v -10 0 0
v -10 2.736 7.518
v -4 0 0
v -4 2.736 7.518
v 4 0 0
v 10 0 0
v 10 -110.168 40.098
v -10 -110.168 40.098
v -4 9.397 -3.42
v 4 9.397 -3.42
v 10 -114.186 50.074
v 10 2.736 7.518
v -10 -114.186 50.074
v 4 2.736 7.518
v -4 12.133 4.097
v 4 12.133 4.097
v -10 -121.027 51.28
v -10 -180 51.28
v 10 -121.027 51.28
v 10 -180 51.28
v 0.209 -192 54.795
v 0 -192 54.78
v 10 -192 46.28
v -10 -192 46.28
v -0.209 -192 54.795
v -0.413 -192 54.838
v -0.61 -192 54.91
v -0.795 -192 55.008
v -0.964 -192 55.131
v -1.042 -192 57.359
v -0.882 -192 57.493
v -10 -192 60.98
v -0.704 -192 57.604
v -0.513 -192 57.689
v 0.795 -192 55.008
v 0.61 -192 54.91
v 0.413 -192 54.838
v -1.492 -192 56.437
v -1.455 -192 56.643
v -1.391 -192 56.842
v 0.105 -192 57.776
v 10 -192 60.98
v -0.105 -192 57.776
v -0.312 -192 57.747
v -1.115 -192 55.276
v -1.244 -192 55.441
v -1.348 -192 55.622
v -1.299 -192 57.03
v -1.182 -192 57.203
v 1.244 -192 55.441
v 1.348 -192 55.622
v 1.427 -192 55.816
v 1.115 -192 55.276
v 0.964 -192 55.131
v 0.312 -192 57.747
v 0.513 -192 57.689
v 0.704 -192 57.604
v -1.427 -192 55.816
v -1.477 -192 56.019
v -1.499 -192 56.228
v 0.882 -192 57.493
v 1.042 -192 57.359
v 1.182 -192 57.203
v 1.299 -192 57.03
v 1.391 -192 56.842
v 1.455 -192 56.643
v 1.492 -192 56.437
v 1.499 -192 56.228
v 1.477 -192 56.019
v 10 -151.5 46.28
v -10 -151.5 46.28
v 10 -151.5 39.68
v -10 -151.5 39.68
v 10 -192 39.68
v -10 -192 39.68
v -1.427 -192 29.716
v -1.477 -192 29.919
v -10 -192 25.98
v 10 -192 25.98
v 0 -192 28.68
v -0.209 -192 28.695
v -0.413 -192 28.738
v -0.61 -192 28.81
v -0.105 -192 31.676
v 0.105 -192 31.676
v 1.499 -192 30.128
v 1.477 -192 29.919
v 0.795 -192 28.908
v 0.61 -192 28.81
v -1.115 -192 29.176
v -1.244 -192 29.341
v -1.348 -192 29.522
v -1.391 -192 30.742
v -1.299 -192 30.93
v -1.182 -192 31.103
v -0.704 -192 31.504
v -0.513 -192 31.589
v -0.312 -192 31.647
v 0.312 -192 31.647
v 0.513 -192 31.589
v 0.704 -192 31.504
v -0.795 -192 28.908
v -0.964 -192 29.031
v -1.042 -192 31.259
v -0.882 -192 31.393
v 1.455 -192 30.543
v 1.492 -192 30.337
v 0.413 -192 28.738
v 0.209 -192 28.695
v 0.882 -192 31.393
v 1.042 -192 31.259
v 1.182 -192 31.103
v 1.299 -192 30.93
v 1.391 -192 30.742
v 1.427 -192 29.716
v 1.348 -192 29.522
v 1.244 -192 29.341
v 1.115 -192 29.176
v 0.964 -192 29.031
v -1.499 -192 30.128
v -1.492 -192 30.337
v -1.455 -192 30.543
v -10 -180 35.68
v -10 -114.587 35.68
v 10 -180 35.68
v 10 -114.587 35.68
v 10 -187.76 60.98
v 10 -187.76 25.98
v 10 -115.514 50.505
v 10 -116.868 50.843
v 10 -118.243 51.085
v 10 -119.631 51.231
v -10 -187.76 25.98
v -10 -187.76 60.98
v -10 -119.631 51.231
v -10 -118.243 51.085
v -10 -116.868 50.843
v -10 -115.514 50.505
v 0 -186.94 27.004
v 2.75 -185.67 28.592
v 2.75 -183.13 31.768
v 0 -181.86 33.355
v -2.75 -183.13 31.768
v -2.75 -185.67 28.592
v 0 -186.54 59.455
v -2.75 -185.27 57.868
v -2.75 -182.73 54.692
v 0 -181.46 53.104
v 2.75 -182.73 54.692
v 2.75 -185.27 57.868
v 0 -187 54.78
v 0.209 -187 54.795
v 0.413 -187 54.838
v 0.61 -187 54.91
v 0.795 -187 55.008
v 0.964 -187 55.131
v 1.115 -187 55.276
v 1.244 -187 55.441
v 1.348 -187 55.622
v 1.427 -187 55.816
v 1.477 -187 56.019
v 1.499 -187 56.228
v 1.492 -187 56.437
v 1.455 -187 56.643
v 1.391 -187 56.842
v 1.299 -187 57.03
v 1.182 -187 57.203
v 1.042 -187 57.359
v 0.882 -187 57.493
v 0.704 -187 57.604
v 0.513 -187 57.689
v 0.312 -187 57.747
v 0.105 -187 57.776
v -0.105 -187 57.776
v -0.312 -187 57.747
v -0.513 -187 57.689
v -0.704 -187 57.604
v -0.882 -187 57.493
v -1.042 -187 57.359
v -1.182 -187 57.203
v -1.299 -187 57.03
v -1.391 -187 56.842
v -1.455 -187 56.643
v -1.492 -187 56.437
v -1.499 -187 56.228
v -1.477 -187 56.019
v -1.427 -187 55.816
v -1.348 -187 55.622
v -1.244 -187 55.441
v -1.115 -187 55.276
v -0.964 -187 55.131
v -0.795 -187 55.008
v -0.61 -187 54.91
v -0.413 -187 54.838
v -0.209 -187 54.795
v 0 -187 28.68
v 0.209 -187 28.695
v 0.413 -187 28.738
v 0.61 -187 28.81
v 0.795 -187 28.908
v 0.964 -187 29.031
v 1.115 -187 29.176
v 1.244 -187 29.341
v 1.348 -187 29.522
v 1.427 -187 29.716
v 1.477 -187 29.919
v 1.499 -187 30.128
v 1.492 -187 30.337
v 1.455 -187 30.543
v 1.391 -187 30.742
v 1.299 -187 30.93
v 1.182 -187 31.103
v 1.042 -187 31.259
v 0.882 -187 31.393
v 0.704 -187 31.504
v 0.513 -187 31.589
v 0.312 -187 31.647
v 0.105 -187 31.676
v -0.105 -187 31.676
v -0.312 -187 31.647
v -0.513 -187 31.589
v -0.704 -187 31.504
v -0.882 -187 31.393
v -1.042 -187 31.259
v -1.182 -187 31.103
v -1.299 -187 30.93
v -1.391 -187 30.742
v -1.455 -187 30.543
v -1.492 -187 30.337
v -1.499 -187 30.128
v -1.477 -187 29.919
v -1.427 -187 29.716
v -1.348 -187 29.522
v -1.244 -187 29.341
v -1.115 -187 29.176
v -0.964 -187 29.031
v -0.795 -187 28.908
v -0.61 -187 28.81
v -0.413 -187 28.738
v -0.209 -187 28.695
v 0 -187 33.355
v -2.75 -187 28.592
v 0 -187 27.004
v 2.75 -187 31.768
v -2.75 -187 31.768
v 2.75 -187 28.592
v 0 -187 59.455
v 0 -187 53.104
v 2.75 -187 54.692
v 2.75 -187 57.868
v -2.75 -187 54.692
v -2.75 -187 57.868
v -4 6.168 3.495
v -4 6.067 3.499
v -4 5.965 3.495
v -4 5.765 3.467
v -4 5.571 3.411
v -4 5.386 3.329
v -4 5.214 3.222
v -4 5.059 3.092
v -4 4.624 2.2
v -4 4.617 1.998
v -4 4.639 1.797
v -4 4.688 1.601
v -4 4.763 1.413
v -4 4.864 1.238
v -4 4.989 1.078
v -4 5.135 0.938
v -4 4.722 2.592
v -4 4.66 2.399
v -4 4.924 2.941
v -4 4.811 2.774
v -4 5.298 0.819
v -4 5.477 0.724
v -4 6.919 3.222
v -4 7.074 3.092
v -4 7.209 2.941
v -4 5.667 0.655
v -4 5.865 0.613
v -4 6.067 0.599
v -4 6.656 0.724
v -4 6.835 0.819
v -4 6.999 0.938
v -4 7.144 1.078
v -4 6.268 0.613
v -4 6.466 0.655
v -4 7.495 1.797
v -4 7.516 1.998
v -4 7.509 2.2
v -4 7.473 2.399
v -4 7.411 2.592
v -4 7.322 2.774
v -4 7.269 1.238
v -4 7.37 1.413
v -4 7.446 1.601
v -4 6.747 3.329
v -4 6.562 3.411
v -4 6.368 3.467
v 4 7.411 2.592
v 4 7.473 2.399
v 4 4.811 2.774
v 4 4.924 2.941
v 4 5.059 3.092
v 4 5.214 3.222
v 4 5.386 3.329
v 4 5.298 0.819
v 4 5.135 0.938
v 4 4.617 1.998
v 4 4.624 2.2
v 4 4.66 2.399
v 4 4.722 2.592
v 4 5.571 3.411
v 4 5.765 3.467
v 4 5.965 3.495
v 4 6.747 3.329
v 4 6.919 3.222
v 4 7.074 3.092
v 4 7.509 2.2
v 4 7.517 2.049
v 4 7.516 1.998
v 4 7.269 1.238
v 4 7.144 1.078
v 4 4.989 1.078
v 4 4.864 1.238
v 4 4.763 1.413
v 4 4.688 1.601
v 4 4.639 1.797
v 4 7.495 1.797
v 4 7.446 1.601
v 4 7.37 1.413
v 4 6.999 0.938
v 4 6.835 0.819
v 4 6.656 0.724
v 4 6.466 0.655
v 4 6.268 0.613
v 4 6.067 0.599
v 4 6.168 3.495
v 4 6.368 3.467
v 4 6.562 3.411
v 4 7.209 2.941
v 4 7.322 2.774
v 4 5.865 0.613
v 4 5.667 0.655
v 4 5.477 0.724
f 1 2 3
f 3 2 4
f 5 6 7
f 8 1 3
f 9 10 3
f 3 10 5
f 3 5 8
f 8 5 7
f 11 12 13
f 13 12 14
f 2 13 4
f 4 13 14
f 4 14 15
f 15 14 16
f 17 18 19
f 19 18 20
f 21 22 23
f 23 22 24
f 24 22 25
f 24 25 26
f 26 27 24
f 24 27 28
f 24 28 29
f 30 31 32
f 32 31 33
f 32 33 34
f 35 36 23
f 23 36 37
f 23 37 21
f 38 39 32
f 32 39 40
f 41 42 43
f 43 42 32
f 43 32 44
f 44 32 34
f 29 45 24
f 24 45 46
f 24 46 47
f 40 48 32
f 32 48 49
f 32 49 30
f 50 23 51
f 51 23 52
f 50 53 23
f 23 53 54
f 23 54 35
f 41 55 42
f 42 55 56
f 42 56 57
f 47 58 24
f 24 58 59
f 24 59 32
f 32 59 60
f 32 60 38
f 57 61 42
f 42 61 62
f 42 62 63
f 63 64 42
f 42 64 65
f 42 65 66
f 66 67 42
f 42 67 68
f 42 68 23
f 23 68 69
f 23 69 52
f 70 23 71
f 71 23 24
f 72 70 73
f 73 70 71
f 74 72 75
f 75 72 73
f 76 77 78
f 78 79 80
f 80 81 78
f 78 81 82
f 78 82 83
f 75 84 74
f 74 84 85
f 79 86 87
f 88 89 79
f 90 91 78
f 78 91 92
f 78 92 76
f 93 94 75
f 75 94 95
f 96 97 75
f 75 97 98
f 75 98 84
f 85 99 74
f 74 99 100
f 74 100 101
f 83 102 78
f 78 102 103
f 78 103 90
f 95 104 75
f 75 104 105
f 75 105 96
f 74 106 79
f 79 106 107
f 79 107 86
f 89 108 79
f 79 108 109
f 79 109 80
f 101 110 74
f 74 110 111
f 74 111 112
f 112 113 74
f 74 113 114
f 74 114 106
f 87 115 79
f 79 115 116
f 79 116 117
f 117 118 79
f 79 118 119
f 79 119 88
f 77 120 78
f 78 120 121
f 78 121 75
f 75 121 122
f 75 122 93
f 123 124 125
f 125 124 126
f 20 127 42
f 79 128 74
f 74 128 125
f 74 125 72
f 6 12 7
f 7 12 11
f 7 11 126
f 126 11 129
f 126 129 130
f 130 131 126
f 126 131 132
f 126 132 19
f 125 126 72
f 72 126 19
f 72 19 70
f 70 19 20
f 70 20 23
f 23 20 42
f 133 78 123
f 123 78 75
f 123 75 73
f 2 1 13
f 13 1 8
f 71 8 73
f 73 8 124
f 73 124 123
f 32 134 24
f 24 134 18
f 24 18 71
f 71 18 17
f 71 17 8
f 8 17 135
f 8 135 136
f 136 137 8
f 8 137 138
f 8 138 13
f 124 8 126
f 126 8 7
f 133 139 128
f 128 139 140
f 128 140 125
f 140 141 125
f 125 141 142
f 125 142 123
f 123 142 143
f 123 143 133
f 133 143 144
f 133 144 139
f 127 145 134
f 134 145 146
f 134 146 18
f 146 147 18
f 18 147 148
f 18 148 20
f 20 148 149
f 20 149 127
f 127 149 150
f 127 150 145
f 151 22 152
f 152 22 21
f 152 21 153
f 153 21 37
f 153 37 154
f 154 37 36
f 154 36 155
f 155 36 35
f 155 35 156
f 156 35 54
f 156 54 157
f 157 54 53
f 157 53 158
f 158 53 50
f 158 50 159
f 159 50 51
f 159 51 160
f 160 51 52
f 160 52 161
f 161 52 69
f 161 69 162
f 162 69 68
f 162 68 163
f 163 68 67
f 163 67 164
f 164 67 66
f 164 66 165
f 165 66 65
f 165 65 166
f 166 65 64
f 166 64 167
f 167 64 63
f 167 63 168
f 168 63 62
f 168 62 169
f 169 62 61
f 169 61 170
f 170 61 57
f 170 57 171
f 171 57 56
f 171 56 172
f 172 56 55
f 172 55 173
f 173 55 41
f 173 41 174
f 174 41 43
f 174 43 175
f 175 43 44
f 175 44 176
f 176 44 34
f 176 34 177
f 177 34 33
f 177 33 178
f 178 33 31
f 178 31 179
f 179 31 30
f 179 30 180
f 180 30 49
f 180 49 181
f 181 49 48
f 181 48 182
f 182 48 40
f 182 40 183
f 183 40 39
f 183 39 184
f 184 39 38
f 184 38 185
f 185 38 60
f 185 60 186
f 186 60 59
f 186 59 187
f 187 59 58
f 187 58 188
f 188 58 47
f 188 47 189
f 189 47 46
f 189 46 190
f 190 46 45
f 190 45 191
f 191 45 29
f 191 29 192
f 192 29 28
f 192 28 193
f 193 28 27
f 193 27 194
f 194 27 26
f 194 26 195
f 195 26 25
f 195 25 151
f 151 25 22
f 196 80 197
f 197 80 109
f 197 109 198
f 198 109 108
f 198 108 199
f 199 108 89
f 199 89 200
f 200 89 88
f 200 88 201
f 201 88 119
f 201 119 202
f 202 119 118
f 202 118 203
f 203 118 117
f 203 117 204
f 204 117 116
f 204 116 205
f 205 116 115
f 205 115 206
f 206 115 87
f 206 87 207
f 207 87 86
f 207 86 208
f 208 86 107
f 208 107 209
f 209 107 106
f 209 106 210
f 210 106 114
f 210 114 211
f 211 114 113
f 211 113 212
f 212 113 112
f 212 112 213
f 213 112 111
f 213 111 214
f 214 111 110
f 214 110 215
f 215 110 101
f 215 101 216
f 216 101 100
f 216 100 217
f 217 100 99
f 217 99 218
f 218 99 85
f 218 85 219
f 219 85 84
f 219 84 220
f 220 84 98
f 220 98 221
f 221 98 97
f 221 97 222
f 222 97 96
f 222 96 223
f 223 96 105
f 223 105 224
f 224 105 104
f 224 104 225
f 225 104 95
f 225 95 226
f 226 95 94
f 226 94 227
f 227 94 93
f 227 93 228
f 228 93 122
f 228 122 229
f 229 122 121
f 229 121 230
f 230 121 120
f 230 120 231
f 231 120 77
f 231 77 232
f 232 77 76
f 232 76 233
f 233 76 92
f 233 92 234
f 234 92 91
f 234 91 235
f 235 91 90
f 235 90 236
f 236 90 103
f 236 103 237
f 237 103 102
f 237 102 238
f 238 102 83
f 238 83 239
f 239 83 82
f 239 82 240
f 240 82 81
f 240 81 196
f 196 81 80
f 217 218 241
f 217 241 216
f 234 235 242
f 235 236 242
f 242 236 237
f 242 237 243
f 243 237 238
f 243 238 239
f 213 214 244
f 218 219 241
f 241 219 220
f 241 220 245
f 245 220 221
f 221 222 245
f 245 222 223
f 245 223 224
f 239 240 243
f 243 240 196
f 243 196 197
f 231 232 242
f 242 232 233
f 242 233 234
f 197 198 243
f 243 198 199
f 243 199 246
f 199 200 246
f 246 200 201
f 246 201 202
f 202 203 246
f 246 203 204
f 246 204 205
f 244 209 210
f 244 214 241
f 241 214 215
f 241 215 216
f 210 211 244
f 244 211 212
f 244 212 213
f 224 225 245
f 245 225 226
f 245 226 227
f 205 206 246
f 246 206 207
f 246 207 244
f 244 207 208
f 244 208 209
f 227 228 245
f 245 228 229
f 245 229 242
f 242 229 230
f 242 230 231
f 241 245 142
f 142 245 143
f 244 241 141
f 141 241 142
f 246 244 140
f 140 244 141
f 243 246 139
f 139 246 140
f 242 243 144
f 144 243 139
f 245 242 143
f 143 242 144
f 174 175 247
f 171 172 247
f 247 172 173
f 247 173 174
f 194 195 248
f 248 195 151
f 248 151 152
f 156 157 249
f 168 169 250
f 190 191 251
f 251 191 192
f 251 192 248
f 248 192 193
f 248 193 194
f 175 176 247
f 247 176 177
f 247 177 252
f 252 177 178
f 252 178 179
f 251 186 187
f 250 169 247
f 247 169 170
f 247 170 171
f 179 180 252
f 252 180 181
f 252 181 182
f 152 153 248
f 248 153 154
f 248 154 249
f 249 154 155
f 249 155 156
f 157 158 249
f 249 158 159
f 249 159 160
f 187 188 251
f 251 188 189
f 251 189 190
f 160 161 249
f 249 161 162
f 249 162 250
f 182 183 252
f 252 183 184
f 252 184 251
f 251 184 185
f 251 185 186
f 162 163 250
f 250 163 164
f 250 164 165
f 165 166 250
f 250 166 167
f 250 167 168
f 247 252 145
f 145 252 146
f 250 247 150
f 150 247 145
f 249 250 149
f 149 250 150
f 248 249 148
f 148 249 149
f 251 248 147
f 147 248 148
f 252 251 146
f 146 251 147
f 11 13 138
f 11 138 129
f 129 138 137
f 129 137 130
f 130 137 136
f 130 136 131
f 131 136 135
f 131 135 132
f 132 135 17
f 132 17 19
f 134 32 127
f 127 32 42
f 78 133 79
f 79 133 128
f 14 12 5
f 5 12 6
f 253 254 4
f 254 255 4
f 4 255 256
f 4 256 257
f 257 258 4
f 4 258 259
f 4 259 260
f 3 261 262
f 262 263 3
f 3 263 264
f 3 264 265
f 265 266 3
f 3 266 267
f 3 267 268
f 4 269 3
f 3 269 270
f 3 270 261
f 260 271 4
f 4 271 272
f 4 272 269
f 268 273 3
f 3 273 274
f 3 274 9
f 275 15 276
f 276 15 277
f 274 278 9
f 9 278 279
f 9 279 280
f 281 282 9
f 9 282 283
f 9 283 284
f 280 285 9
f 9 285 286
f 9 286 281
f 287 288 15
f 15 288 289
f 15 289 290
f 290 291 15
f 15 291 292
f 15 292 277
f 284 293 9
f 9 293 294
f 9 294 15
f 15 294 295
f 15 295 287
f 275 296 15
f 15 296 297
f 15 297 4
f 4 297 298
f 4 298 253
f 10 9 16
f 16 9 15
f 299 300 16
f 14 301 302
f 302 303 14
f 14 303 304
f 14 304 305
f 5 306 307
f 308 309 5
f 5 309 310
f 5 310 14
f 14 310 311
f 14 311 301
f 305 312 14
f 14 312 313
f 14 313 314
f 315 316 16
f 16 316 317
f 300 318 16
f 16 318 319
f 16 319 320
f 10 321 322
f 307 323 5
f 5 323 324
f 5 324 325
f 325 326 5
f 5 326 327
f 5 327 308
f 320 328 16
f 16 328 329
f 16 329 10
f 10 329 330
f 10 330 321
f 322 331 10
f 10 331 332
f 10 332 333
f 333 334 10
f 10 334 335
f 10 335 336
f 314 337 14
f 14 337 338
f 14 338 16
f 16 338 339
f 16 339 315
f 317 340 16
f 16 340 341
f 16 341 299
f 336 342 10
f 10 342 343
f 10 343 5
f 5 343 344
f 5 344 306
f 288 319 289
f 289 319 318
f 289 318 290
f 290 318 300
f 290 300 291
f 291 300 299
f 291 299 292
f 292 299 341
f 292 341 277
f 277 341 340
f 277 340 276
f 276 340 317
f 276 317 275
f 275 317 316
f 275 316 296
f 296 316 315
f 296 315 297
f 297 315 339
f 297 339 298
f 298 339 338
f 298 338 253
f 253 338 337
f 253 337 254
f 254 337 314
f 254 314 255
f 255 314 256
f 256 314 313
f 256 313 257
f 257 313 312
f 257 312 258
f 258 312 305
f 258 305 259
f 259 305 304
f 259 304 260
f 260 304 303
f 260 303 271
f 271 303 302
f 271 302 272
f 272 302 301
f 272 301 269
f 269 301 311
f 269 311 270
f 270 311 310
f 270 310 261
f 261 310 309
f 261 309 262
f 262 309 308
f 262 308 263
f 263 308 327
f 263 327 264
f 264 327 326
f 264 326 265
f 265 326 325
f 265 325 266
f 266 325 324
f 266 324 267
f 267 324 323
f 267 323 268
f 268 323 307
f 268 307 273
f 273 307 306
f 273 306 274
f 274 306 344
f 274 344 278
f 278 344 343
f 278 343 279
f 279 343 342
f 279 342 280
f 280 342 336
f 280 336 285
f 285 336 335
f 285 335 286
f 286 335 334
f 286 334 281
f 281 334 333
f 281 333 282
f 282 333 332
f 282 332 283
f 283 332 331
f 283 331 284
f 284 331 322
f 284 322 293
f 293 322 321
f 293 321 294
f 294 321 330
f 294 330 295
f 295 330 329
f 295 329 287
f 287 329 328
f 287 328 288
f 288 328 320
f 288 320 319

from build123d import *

# Parameters (mm, degrees)
BOSS_EXTRUDE1_DEPTH = 10
CHAMFER1_SIZE       = 7.802060087
CHAMFER1_SIZE_2     = 10
BOSS_EXTRUDE2_DEPTH = 20
SKETCH7_R           = 1.5
CUT_EXTRUDE1_DEPTH  = 20
CUT_EXTRUDE3_DEPTH  = 20
FILLET5_R           = 20
FILLET6_R           = 10
SKETCH10_W          = 5.3
SKETCH10_H          = 4.24
CUT_EXTRUDE4_DEPTH  = 273.805653344
SKETCH11_W          = 3.75
SKETCH11_H          = 144.691495626
CUT_EXTRUDE5_DEPTH  = 370.011076387
BOSS_EXTRUDE4_DEPTH = 12.5
SKETCH12_W          = 2
SKETCH12_H          = 1.5
CUT_EXTRUDE6_DEPTH  = 144.691496
CUT_EXTRUDE7_DEPTH  = 273.805653344
SKETCH15_W          = 8
SKETCH15_H          = 10
BOSS_EXTRUDE5_DEPTH = 8
SKETCH16_R          = 1.45
CUT_EXTRUDE9_DEPTH  = 203.44147603


with BuildPart() as part:
    # Sketch2 → Boss-Extrude1 (new, symmetric)
    with BuildSketch(Plane(origin=(0, 0, 0), x_dir=(0, 0, -1), z_dir=(1, 0, 0))):
        Polygon((36.072931518, 122.5), (-51.279924706, -117.5), (-51.279924706, -192), (-46.279924706, -192), (-46.279924706, -151.5), (-39.679924706, -151.5), (-39.679924706, -192), (-35.679924706, -192), (-35.679924706, -117.5), (-42.766502526, -117.5), (42.766502526, 117.5), (192.766502526, 117.5), (192.766502526, 122.5), align=None)
    extrude(amount=BOSS_EXTRUDE1_DEPTH, both=True)

    # Chamfer1
    # the kernel refuses this chamfer: 10, 7.802060087 mm, written as the material it adds along each edge
    with BuildSketch(Plane(origin=(-10, -117.5, 42.766502526), x_dir=(0, 0.9542611885293297, -0.298974219735734), z_dir=(1, 0, 0))) as chamfer1_piece_1_section:
        Polygon((CHAMFER1_SIZE * 0.998967402661, -CHAMFER1_SIZE * 0.0454326803806), (CHAMFER1_SIZE_2 * 0.298974219736, -CHAMFER1_SIZE_2 * 0.954261188529), (0, 0), align=None)
    chamfer1_piece_1 = extrude(amount=20, mode=Mode.PRIVATE)
    chamfer1_piece_1 = split(chamfer1_piece_1, bisect_by=Plane(origin=(0, -114.855220314, 35.679924706), z_dir=(0, 0, 1)), keep=Keep.TOP, mode=Mode.PRIVATE)
    add(chamfer1_piece_1)

    # Sketch6 → Boss-Extrude2 (add)
    with BuildSketch(Plane(origin=(10, 0, 0), x_dir=(0, 0, -1), z_dir=(1, 0, 0))):
        Polygon((-51.279924706, -180), (-66.279924706, -192), (-51.279924706, -192), align=None)
        Polygon((-35.679924706, -192), (-20.679924706, -192), (-35.679924706, -180), align=None)
    extrude(amount=-BOSS_EXTRUDE2_DEPTH)

    # Sketch7 → Cut-Extrude1 (cut)
    with BuildSketch(Plane(origin=(0, -192, 0), x_dir=(-1, 0, 0), z_dir=(0, -1, 0))):
        with Locations(Location((0, -56.279924706, 0), (0, 0, 90))):
            Circle(SKETCH7_R)
        with Locations(Location((0, -30.179924706, 0), (0, 0, 90))):
            Circle(SKETCH7_R)
    extrude(amount=-CUT_EXTRUDE1_DEPTH, mode=Mode.SUBTRACT)

    # Sketch9 → Cut-Extrude3 (cut)
    with BuildSketch(Plane(origin=(0, -187, 0), x_dir=(-1, 0, 0), z_dir=(0, -1, 0))):
        Polygon((2.75, -57.867637946), (2.75, -54.692211466), (0, -53.104498226), (-2.75, -54.692211466), (-2.75, -57.867637946), (0, -59.455351187), align=None)
        Polygon((2.75, -31.767637946), (2.75, -28.592211466), (0, -27.004498226), (-2.75, -28.592211466), (-2.75, -31.767637946), (0, -33.355351187), align=None)
    extrude(amount=-CUT_EXTRUDE3_DEPTH, mode=Mode.SUBTRACT)

    # Fillet5
    fillet5_edges = [part.edges().sort_by_distance(p)[0] for p in [
        (0, -117.5, 51.279924706),
    ]]
    fillet(fillet5_edges, radius=FILLET5_R)

    # Fillet6
    fillet6_edges = [part.edges().sort_by_distance(p)[0] for p in [
        (0, 122.5, -36.072931518),
    ]]
    fillet(fillet6_edges, radius=FILLET6_R)

    # Sketch10 → Cut-Extrude4 (cut, through all)
    with BuildSketch(Plane(origin=(10, 0, 0), x_dir=(0, 0, -1), z_dir=(1, 0, 0))):
        with Locations((-63.629924706, -189.88)):
            Rectangle(SKETCH10_W, SKETCH10_H)
        with Locations((-23.329924706, -189.88)):
            Rectangle(SKETCH10_W, SKETCH10_H)
    extrude(amount=-CUT_EXTRUDE4_DEPTH, mode=Mode.SUBTRACT)

    # Sketch11 → Cut-Extrude5 (cut, through all)
    with BuildSketch(Plane(origin=(0, 122.5, 0), x_dir=(1, 0, 0), z_dir=(0, 1, 0))):
        with Locations((-8.125, 120.420754713)):
            Rectangle(SKETCH11_W, SKETCH11_H)
        with Locations((8.125, 120.420754713)):
            Rectangle(SKETCH11_W, SKETCH11_H)
    extrude(amount=-CUT_EXTRUDE5_DEPTH, mode=Mode.SUBTRACT)

    # Sketch13 → Boss-Extrude4 (add)
    with BuildSketch(Plane(origin=(6.25, 0, 0), x_dir=(0, 0, -1), z_dir=(1, 0, 0))):
        Polygon((52.766502526, 117.5), (37.766502526, 103.762612903), (42.766502526, 117.5), align=None)
    extrude(amount=-BOSS_EXTRUDE4_DEPTH)

    # Sketch12 → Cut-Extrude6 (cut)
    with BuildSketch(Plane(origin=(0, 0, -192.766502526), x_dir=(-1, 0, 0), z_dir=(0, 0, -1))):
        with Locations((-5.25, 120)):
            Rectangle(SKETCH12_W, SKETCH12_H)
        with Locations((5.25, 120)):
            Rectangle(SKETCH12_W, SKETCH12_H)
    extrude(amount=-CUT_EXTRUDE6_DEPTH, mode=Mode.SUBTRACT)

    # Sketch14 → Cut-Extrude7 (cut, through all)
    with BuildSketch(Plane(origin=(10, 0, 0), x_dir=(0, 0, -1), z_dir=(1, 0, 0))):
        Polygon((-7.517540966, 2.736161147), (0, 0), (208.269452521, 117.586421331), (208.269452521, 129.478082523), (28.535487637, 129.478082523), align=None)
    extrude(amount=-CUT_EXTRUDE7_DEPTH, mode=Mode.SUBTRACT)

    # Sketch15 → Boss-Extrude5 (add)
    with BuildSketch(Plane(origin=(0, 2.736161147, 7.517540966), x_dir=(1, 0, 0), z_dir=(0, 0.3420201433256657, 0.9396926207859096))):
        with Locations((0, 5)):
            Rectangle(SKETCH15_W, SKETCH15_H)
    extrude(amount=-BOSS_EXTRUDE5_DEPTH)

    # Sketch16 → Cut-Extrude9 (cut, through all)
    with BuildSketch(Plane(origin=(10, 0, 0), x_dir=(0, 0, -1), z_dir=(1, 0, 0))):
        with Locations(Location((-2.048669767, 6.066543677, 0), (0, 0, 90))):
            Circle(SKETCH16_R)
    extrude(amount=-CUT_EXTRUDE9_DEPTH, mode=Mode.SUBTRACT)


solid = part.part
